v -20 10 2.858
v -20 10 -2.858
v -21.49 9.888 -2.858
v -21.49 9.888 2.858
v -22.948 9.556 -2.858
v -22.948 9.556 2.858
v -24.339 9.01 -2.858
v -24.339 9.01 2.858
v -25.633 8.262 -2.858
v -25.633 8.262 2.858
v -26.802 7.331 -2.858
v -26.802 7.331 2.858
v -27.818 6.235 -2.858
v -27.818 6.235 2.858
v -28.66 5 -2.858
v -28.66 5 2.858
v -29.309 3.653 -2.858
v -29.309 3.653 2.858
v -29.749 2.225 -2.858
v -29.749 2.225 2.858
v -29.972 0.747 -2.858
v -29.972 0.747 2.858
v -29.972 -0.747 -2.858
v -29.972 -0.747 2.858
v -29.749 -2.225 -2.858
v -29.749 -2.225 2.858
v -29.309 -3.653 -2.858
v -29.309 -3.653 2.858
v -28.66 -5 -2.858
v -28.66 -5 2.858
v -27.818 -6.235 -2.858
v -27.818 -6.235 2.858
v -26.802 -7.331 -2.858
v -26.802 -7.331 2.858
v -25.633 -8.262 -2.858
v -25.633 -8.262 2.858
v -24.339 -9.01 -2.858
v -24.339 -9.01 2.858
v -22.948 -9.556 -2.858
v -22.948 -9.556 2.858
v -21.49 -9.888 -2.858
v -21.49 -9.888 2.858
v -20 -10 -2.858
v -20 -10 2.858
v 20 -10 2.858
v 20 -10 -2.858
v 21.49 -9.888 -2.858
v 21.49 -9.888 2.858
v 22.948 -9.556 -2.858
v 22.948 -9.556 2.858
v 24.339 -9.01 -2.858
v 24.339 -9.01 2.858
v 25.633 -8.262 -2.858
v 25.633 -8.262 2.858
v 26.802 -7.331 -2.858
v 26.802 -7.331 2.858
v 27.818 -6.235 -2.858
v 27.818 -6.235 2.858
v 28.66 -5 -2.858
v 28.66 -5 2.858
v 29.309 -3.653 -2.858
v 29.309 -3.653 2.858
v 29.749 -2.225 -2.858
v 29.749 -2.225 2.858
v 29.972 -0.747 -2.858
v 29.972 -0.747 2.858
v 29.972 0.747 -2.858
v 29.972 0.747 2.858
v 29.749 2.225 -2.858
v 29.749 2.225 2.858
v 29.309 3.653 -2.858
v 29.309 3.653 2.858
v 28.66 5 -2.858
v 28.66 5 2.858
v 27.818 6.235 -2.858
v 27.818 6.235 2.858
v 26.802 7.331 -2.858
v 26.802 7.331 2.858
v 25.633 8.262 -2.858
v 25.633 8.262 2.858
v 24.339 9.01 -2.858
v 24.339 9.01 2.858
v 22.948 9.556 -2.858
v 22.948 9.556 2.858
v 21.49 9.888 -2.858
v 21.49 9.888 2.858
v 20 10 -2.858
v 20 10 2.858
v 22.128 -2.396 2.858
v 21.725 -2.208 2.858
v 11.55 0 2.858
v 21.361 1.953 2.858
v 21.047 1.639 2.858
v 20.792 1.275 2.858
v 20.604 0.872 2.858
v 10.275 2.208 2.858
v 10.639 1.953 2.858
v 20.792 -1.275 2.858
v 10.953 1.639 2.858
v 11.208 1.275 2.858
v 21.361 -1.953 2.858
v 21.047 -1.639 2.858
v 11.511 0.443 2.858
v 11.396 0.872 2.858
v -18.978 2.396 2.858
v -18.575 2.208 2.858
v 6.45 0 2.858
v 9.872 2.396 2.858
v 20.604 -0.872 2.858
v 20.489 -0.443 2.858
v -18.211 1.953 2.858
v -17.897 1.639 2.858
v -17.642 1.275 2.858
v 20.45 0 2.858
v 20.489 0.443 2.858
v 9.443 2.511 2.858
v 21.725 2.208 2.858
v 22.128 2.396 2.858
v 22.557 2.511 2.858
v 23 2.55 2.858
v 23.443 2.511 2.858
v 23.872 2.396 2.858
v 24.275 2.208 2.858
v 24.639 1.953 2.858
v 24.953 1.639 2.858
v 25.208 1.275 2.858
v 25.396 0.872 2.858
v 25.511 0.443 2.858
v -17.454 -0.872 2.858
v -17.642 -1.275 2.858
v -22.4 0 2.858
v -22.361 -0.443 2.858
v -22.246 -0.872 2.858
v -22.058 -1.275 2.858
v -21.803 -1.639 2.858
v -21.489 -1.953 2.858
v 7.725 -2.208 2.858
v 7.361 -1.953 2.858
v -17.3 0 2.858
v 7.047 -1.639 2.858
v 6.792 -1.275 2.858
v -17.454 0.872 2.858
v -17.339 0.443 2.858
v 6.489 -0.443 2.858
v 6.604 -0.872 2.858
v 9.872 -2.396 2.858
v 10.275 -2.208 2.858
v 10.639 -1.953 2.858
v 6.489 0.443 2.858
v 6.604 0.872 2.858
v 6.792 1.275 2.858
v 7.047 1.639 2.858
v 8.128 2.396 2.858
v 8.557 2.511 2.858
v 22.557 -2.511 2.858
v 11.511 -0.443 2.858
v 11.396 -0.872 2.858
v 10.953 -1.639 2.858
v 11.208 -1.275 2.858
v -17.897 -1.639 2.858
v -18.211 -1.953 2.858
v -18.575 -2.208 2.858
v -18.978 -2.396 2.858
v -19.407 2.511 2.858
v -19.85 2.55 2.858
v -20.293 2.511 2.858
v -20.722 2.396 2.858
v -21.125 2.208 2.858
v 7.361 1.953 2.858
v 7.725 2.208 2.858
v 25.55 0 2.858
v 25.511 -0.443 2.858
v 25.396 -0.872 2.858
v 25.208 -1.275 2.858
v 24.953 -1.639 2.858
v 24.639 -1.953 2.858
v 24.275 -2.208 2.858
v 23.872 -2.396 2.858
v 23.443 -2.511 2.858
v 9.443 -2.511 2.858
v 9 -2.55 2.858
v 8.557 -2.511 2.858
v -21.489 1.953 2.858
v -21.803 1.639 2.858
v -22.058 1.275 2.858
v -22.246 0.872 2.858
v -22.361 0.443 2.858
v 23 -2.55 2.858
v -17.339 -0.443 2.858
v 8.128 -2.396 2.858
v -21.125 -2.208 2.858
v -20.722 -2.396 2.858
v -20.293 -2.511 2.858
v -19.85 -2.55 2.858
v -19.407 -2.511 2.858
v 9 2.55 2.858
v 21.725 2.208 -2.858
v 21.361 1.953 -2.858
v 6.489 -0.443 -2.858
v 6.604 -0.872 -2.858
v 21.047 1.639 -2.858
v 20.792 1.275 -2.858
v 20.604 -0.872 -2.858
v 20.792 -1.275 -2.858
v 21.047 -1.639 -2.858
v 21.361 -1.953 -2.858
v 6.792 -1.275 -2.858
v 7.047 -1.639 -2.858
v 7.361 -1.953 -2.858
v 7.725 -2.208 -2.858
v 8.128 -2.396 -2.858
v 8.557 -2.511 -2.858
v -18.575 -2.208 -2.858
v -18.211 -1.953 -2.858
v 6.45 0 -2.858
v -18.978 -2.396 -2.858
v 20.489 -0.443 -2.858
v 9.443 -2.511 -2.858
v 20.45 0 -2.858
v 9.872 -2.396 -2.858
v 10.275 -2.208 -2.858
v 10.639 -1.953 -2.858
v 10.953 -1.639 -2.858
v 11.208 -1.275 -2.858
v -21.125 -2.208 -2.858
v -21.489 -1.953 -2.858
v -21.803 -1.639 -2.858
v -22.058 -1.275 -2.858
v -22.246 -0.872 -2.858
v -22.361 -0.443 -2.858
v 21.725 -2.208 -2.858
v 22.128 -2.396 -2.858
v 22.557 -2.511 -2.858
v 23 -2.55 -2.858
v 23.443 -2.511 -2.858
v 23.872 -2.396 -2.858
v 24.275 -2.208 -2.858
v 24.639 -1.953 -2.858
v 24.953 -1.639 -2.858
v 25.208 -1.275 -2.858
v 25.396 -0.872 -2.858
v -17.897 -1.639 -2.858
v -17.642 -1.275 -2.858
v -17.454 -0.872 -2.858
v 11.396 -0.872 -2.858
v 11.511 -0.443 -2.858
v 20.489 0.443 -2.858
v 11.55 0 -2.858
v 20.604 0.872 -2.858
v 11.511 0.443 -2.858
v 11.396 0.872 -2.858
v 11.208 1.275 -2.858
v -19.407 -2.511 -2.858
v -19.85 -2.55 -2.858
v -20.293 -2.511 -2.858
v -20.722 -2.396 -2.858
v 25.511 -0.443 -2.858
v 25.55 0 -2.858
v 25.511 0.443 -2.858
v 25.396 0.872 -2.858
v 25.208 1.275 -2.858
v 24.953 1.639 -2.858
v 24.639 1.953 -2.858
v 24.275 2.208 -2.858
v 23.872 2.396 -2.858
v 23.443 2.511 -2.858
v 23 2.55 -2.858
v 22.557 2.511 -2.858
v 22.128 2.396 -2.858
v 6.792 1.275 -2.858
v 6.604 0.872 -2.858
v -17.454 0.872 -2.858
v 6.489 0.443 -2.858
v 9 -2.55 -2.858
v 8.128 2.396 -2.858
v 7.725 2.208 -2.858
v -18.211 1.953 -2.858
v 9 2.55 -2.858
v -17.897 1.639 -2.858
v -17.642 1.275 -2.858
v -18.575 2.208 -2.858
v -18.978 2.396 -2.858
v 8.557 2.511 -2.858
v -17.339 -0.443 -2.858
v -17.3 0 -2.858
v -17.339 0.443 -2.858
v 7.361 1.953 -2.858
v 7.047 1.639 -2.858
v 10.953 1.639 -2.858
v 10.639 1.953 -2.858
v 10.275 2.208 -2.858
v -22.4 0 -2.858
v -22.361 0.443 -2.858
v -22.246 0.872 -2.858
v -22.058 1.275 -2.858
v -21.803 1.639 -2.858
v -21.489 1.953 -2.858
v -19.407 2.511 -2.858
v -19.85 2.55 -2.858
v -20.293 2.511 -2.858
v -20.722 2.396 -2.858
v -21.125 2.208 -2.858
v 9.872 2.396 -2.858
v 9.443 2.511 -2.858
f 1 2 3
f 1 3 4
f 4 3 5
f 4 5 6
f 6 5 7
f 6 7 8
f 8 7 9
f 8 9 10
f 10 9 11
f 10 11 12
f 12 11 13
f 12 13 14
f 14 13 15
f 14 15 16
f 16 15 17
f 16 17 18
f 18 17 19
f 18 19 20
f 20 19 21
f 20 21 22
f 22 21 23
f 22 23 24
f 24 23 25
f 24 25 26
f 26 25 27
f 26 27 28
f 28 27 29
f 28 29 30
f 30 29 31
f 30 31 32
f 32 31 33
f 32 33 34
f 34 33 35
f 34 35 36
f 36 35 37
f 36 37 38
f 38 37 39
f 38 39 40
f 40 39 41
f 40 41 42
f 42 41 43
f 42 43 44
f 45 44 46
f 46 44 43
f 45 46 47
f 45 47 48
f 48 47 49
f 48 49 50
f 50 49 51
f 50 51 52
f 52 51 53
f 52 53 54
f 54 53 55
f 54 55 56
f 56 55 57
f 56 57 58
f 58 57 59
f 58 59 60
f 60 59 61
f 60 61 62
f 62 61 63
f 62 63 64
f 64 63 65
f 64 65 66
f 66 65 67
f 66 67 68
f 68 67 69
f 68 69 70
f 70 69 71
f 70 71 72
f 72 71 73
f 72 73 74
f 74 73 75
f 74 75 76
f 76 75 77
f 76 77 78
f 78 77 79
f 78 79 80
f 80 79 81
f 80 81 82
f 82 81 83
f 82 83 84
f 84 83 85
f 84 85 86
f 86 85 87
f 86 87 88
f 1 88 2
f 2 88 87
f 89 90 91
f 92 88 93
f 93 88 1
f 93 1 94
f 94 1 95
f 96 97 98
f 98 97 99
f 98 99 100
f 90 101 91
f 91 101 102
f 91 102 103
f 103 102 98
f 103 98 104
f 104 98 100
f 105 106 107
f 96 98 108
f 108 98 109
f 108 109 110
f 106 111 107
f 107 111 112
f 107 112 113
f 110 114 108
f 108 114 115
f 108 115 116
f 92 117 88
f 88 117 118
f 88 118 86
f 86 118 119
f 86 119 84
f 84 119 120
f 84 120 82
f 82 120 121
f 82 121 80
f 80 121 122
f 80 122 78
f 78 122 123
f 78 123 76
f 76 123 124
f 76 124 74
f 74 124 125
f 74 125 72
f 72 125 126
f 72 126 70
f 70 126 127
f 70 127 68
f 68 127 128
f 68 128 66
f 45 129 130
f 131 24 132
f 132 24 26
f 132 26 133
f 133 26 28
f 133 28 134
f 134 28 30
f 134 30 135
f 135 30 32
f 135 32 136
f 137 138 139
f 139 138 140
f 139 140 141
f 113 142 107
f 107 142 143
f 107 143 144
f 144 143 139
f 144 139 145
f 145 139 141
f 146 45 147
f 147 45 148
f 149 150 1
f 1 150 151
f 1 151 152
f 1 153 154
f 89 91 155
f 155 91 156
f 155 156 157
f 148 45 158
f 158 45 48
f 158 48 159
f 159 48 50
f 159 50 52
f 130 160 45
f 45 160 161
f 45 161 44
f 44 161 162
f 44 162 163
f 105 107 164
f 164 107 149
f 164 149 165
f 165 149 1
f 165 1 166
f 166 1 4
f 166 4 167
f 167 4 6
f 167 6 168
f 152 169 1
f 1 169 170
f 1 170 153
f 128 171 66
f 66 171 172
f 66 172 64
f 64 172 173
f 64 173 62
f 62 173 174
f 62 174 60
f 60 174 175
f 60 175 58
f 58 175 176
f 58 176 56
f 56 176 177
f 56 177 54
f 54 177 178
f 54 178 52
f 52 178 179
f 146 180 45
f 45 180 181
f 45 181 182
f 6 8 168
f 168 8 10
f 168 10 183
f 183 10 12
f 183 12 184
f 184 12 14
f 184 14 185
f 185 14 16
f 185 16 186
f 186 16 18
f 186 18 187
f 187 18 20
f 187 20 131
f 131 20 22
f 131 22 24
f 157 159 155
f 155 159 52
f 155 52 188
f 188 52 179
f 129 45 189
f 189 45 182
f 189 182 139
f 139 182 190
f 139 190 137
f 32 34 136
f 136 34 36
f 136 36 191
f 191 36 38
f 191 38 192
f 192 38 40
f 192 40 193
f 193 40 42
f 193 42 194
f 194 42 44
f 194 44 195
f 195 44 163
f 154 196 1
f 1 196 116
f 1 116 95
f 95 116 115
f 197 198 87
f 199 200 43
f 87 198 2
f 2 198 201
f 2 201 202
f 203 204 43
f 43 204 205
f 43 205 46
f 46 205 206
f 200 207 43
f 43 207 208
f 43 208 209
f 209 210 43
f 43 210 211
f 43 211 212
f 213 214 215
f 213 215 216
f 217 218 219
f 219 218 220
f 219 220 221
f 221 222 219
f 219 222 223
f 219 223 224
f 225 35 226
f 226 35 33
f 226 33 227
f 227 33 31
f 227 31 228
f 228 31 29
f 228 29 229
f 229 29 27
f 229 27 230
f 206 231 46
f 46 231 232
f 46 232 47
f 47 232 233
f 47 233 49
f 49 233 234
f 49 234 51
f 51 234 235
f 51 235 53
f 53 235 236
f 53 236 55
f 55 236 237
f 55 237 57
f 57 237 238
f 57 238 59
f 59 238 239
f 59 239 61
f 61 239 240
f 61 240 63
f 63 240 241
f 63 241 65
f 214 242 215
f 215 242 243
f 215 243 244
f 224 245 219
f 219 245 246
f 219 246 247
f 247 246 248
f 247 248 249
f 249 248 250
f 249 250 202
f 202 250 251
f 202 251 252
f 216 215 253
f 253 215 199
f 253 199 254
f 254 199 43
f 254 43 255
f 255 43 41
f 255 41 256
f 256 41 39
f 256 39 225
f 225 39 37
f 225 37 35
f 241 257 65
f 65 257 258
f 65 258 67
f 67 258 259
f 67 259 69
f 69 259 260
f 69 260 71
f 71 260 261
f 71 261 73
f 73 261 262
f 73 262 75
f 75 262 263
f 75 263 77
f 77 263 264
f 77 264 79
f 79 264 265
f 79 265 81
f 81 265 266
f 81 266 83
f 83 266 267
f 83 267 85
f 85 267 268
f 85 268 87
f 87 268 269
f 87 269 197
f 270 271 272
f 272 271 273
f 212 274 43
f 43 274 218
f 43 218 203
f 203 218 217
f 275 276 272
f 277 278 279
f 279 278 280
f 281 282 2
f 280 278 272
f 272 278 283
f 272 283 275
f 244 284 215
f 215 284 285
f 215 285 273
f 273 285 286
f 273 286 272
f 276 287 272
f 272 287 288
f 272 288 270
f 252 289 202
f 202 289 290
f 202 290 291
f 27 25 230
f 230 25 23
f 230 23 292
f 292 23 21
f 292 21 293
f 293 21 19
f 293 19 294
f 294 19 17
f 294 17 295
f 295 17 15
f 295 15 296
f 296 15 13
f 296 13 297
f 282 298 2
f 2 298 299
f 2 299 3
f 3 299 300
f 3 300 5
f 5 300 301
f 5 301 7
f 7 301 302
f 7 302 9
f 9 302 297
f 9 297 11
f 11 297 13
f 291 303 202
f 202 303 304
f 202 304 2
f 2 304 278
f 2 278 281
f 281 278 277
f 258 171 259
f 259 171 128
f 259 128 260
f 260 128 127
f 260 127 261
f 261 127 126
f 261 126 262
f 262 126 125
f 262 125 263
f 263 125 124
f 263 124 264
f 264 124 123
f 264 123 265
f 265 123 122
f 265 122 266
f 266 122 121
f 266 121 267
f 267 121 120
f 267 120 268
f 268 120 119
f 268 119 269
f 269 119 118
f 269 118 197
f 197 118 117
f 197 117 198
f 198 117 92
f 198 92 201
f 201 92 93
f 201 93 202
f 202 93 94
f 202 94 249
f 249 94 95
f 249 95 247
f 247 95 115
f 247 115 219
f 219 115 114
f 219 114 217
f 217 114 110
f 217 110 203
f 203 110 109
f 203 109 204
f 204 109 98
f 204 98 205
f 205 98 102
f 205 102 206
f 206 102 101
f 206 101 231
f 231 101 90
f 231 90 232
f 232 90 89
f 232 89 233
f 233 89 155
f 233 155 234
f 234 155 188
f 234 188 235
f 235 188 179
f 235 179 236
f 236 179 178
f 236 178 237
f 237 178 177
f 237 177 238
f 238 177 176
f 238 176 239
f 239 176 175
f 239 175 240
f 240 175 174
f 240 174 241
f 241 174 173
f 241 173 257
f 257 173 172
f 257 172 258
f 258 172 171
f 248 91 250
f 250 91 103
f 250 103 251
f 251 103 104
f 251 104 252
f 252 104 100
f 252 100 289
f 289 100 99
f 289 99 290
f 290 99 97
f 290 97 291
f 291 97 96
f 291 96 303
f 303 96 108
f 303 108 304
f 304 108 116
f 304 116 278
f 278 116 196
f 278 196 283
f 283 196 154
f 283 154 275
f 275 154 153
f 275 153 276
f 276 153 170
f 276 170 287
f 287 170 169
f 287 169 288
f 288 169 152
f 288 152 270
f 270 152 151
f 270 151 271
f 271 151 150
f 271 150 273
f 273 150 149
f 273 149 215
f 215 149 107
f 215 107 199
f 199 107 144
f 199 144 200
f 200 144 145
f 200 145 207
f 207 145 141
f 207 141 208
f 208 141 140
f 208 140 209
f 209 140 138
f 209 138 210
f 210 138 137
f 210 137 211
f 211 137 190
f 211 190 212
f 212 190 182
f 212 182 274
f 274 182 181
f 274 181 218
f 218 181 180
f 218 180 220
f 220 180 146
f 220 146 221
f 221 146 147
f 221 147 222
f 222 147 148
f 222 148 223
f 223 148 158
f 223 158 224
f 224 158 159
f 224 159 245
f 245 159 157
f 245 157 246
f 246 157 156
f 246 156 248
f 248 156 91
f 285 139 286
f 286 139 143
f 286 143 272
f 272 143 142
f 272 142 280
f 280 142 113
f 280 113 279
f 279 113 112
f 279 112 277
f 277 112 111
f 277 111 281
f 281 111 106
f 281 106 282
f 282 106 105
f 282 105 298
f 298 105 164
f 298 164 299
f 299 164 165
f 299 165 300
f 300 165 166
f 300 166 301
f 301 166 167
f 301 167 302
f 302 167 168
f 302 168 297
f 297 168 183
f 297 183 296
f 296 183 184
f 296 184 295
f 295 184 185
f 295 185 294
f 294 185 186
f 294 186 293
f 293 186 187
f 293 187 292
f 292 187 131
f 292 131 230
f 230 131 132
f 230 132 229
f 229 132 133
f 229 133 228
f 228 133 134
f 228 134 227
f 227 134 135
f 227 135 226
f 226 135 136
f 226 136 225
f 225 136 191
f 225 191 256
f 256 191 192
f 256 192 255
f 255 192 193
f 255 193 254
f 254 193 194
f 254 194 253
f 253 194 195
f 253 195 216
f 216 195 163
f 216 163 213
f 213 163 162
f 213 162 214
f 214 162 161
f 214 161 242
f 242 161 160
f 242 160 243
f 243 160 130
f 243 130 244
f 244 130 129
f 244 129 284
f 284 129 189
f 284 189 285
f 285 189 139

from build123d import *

# Parameters (mm, degrees)
BOSS_EXTRUDE1_DEPTH = 2.8575
SKETCH3_R           = 2.55
CUT_EXTRUDE1_DEPTH  = 6.715
SKETCH4_R           = 2.55
CUT_EXTRUDE2_DEPTH  = 5.715


with BuildPart() as part:
    # Sketch2 → Boss-Extrude1 (new body, symmetric)
    with BuildSketch(Plane.XY):
        with BuildLine():
            Line((-20, 10), (20, 10))
            ThreePointArc((20, 10), (30, 0), (20, -10))
            Line((20, -10), (-20, -10))
            ThreePointArc((-20, -10), (-30, 0), (-20, 10))
        make_face()
    extrude(amount=BOSS_EXTRUDE1_DEPTH, both=True)

    # Sketch3 → Cut-Extrude1 (cut, through all)
    with BuildSketch(Plane.XY.offset(2.8575)):
        with Locations((9, 0)):
            Circle(SKETCH3_R)
        with Locations((23, 0)):
            Circle(SKETCH3_R)
    extrude(amount=-CUT_EXTRUDE1_DEPTH, mode=Mode.SUBTRACT)

    # Sketch4 → Cut-Extrude2 (cut)
    with BuildSketch(Plane.XY.offset(2.8575)):
        with Locations((-19.85, 0)):
            Circle(SKETCH4_R)
    extrude(amount=-CUT_EXTRUDE2_DEPTH, mode=Mode.SUBTRACT)


solid = part.part
